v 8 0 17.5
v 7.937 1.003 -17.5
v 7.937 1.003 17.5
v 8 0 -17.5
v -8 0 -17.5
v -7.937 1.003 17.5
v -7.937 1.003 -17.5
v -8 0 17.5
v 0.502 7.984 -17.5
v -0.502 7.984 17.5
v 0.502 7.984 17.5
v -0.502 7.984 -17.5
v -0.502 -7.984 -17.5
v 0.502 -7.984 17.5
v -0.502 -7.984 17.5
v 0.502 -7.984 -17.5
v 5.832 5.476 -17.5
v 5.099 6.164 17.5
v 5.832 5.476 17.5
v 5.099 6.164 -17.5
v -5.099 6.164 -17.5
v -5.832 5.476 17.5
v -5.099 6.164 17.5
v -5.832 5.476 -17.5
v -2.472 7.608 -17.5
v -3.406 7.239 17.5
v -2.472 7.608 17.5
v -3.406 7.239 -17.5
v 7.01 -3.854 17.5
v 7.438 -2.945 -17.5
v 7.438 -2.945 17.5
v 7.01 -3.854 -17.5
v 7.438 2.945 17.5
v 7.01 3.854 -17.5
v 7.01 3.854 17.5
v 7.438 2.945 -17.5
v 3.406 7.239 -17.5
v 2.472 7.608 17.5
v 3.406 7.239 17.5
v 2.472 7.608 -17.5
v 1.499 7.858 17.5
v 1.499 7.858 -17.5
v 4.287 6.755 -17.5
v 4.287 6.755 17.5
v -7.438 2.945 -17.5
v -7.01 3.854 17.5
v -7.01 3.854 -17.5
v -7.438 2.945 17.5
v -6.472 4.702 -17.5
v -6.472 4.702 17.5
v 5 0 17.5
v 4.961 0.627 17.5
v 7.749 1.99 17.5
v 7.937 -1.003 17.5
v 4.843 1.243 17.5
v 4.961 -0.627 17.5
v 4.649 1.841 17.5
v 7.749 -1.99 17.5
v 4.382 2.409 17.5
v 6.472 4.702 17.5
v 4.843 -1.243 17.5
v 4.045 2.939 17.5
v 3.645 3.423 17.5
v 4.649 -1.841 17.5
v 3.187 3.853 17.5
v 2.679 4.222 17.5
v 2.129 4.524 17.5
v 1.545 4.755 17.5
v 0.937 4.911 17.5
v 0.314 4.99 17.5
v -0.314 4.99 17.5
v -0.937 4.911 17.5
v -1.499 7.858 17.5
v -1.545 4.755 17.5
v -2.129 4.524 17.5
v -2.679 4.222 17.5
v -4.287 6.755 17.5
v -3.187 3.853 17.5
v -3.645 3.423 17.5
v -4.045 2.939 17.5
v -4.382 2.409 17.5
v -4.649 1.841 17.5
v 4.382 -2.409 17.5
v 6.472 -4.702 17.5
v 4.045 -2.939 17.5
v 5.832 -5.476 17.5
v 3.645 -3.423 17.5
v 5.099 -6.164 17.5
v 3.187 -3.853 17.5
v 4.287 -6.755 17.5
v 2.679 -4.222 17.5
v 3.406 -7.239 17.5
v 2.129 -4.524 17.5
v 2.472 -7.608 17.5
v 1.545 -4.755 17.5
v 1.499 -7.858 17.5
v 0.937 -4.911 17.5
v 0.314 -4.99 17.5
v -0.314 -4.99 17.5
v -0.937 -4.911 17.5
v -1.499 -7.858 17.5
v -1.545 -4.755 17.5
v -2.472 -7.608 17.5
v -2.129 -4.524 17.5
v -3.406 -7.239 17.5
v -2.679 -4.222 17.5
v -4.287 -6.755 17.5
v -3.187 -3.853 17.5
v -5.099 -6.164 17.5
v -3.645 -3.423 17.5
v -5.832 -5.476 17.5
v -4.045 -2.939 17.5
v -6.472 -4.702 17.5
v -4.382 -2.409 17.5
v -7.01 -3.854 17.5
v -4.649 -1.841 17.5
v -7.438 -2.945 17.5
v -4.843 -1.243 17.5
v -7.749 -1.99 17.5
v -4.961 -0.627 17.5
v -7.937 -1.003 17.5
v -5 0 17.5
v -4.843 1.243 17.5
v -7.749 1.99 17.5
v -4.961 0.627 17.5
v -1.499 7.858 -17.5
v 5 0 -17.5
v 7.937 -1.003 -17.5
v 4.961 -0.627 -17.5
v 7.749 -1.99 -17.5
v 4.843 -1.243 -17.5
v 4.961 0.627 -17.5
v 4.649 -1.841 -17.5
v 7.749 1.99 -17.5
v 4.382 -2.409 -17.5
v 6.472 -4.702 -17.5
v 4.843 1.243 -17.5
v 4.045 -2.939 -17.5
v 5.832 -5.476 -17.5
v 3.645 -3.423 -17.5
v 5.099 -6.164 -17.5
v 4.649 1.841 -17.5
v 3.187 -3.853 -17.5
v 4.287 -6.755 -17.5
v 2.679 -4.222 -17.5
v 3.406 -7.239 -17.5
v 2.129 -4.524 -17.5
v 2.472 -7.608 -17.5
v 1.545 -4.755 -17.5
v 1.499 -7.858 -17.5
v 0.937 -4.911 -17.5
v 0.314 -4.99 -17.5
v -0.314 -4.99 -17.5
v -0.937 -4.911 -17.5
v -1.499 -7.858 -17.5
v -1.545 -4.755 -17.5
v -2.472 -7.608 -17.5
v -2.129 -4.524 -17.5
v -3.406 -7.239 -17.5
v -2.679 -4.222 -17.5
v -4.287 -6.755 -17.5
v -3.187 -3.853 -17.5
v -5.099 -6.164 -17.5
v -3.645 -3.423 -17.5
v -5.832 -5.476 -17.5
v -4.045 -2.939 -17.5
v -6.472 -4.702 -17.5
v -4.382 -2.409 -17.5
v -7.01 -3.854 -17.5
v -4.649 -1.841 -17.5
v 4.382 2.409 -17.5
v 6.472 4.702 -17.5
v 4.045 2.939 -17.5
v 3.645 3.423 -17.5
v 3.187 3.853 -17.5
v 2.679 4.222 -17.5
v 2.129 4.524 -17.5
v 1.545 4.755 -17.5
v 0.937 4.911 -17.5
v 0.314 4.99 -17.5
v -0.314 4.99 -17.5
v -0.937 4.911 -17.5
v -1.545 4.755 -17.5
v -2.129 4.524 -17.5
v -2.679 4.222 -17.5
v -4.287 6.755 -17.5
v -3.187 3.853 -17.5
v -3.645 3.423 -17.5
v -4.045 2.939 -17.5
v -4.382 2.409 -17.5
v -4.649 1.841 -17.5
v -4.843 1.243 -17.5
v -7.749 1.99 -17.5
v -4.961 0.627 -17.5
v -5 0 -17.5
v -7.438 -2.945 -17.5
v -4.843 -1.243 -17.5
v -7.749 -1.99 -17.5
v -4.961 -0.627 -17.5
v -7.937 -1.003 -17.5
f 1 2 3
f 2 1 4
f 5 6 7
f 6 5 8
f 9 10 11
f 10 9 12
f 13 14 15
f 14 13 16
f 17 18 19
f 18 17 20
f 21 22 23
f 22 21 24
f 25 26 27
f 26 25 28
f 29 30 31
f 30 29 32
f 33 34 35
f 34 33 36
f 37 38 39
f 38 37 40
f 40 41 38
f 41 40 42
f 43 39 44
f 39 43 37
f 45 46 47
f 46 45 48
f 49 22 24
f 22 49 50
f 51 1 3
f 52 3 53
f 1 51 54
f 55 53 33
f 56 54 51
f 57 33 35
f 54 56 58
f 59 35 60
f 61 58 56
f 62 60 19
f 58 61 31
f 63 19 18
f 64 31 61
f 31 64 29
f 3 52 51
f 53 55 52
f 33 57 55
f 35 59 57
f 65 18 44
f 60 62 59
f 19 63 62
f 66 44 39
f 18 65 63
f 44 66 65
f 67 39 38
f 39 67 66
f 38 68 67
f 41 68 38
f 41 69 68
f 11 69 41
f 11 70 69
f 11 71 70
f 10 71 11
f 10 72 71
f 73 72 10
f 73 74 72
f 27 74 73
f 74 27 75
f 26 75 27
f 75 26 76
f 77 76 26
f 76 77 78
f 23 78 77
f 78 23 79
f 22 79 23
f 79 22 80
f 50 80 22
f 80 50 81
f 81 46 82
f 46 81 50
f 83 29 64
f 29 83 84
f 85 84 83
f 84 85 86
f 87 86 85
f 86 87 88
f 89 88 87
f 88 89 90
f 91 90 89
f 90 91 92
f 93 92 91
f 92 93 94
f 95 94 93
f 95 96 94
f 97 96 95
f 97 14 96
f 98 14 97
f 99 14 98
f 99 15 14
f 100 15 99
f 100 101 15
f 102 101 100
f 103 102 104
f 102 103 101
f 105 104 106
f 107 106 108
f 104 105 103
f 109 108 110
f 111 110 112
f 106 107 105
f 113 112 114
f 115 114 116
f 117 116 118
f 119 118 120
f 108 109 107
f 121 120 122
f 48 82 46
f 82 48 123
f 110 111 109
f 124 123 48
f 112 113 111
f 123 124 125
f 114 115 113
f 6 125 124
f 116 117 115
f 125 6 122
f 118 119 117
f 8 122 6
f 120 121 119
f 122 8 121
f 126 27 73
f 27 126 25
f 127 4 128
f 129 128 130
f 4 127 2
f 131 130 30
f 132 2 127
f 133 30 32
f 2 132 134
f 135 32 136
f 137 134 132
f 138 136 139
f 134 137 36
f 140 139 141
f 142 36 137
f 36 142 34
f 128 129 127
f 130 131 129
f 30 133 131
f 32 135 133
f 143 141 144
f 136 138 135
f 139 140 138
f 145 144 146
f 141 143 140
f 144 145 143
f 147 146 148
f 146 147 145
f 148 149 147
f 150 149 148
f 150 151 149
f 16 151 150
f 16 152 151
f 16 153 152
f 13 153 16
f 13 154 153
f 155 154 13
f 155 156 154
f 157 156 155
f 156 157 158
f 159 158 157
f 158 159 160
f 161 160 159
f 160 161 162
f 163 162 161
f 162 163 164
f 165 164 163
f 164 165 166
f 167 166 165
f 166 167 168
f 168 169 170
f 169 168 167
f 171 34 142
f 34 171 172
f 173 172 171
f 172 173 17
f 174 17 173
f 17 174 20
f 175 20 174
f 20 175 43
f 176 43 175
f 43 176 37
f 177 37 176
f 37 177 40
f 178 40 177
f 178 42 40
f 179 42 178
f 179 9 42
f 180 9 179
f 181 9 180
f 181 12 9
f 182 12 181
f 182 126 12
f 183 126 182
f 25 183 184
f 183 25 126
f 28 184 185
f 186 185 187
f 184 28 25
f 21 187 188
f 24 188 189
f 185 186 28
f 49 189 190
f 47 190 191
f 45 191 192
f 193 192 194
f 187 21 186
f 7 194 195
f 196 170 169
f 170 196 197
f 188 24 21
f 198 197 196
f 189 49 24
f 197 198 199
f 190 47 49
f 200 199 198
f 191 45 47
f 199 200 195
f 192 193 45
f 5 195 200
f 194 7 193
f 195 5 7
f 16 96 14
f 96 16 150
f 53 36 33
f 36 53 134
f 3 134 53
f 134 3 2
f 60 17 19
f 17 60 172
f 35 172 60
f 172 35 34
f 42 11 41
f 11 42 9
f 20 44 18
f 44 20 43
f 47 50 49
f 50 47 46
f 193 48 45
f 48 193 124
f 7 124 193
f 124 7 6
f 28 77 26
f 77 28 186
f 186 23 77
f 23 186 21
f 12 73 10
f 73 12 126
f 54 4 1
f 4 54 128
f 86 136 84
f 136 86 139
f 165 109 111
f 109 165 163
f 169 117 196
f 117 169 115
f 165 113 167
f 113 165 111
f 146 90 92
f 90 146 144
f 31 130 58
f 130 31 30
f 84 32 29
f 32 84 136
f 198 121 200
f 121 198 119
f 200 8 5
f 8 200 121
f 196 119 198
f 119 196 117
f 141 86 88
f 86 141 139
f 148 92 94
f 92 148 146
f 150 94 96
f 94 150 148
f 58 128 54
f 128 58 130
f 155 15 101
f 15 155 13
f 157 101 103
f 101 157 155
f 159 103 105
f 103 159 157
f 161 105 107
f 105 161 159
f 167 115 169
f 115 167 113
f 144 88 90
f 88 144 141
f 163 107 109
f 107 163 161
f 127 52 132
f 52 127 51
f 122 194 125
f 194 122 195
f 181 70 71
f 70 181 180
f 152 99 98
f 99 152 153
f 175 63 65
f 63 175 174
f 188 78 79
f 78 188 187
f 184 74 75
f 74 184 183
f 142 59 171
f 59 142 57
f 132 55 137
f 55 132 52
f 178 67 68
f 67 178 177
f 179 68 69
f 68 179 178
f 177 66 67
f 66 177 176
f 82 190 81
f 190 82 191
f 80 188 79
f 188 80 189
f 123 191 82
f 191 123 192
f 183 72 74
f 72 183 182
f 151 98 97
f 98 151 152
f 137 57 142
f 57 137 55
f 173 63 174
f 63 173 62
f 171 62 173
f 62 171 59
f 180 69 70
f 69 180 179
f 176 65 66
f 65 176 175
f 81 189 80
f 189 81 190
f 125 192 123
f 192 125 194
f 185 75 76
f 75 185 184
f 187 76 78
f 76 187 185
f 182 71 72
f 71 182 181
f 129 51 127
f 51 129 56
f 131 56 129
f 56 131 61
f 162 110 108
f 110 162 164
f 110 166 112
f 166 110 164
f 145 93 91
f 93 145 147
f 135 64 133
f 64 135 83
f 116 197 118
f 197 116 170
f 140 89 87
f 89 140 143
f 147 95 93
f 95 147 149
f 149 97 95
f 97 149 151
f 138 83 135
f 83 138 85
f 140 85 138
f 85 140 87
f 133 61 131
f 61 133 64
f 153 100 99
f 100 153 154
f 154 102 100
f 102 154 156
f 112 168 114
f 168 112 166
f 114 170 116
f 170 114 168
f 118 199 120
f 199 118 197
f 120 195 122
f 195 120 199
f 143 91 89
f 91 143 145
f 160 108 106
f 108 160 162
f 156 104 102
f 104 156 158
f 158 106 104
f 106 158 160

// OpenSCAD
$fn = 50;


difference() {
	union() {
		translate(v = [0, 0, -17.5000000000]) {
			cylinder(h = 35, r = 8.0000000000);
		}
	}
	union() {
		translate(v = [0, 0, -100.0000000000]) {
			cylinder(h = 200, r = 5.0000000000);
		}
	}
}
